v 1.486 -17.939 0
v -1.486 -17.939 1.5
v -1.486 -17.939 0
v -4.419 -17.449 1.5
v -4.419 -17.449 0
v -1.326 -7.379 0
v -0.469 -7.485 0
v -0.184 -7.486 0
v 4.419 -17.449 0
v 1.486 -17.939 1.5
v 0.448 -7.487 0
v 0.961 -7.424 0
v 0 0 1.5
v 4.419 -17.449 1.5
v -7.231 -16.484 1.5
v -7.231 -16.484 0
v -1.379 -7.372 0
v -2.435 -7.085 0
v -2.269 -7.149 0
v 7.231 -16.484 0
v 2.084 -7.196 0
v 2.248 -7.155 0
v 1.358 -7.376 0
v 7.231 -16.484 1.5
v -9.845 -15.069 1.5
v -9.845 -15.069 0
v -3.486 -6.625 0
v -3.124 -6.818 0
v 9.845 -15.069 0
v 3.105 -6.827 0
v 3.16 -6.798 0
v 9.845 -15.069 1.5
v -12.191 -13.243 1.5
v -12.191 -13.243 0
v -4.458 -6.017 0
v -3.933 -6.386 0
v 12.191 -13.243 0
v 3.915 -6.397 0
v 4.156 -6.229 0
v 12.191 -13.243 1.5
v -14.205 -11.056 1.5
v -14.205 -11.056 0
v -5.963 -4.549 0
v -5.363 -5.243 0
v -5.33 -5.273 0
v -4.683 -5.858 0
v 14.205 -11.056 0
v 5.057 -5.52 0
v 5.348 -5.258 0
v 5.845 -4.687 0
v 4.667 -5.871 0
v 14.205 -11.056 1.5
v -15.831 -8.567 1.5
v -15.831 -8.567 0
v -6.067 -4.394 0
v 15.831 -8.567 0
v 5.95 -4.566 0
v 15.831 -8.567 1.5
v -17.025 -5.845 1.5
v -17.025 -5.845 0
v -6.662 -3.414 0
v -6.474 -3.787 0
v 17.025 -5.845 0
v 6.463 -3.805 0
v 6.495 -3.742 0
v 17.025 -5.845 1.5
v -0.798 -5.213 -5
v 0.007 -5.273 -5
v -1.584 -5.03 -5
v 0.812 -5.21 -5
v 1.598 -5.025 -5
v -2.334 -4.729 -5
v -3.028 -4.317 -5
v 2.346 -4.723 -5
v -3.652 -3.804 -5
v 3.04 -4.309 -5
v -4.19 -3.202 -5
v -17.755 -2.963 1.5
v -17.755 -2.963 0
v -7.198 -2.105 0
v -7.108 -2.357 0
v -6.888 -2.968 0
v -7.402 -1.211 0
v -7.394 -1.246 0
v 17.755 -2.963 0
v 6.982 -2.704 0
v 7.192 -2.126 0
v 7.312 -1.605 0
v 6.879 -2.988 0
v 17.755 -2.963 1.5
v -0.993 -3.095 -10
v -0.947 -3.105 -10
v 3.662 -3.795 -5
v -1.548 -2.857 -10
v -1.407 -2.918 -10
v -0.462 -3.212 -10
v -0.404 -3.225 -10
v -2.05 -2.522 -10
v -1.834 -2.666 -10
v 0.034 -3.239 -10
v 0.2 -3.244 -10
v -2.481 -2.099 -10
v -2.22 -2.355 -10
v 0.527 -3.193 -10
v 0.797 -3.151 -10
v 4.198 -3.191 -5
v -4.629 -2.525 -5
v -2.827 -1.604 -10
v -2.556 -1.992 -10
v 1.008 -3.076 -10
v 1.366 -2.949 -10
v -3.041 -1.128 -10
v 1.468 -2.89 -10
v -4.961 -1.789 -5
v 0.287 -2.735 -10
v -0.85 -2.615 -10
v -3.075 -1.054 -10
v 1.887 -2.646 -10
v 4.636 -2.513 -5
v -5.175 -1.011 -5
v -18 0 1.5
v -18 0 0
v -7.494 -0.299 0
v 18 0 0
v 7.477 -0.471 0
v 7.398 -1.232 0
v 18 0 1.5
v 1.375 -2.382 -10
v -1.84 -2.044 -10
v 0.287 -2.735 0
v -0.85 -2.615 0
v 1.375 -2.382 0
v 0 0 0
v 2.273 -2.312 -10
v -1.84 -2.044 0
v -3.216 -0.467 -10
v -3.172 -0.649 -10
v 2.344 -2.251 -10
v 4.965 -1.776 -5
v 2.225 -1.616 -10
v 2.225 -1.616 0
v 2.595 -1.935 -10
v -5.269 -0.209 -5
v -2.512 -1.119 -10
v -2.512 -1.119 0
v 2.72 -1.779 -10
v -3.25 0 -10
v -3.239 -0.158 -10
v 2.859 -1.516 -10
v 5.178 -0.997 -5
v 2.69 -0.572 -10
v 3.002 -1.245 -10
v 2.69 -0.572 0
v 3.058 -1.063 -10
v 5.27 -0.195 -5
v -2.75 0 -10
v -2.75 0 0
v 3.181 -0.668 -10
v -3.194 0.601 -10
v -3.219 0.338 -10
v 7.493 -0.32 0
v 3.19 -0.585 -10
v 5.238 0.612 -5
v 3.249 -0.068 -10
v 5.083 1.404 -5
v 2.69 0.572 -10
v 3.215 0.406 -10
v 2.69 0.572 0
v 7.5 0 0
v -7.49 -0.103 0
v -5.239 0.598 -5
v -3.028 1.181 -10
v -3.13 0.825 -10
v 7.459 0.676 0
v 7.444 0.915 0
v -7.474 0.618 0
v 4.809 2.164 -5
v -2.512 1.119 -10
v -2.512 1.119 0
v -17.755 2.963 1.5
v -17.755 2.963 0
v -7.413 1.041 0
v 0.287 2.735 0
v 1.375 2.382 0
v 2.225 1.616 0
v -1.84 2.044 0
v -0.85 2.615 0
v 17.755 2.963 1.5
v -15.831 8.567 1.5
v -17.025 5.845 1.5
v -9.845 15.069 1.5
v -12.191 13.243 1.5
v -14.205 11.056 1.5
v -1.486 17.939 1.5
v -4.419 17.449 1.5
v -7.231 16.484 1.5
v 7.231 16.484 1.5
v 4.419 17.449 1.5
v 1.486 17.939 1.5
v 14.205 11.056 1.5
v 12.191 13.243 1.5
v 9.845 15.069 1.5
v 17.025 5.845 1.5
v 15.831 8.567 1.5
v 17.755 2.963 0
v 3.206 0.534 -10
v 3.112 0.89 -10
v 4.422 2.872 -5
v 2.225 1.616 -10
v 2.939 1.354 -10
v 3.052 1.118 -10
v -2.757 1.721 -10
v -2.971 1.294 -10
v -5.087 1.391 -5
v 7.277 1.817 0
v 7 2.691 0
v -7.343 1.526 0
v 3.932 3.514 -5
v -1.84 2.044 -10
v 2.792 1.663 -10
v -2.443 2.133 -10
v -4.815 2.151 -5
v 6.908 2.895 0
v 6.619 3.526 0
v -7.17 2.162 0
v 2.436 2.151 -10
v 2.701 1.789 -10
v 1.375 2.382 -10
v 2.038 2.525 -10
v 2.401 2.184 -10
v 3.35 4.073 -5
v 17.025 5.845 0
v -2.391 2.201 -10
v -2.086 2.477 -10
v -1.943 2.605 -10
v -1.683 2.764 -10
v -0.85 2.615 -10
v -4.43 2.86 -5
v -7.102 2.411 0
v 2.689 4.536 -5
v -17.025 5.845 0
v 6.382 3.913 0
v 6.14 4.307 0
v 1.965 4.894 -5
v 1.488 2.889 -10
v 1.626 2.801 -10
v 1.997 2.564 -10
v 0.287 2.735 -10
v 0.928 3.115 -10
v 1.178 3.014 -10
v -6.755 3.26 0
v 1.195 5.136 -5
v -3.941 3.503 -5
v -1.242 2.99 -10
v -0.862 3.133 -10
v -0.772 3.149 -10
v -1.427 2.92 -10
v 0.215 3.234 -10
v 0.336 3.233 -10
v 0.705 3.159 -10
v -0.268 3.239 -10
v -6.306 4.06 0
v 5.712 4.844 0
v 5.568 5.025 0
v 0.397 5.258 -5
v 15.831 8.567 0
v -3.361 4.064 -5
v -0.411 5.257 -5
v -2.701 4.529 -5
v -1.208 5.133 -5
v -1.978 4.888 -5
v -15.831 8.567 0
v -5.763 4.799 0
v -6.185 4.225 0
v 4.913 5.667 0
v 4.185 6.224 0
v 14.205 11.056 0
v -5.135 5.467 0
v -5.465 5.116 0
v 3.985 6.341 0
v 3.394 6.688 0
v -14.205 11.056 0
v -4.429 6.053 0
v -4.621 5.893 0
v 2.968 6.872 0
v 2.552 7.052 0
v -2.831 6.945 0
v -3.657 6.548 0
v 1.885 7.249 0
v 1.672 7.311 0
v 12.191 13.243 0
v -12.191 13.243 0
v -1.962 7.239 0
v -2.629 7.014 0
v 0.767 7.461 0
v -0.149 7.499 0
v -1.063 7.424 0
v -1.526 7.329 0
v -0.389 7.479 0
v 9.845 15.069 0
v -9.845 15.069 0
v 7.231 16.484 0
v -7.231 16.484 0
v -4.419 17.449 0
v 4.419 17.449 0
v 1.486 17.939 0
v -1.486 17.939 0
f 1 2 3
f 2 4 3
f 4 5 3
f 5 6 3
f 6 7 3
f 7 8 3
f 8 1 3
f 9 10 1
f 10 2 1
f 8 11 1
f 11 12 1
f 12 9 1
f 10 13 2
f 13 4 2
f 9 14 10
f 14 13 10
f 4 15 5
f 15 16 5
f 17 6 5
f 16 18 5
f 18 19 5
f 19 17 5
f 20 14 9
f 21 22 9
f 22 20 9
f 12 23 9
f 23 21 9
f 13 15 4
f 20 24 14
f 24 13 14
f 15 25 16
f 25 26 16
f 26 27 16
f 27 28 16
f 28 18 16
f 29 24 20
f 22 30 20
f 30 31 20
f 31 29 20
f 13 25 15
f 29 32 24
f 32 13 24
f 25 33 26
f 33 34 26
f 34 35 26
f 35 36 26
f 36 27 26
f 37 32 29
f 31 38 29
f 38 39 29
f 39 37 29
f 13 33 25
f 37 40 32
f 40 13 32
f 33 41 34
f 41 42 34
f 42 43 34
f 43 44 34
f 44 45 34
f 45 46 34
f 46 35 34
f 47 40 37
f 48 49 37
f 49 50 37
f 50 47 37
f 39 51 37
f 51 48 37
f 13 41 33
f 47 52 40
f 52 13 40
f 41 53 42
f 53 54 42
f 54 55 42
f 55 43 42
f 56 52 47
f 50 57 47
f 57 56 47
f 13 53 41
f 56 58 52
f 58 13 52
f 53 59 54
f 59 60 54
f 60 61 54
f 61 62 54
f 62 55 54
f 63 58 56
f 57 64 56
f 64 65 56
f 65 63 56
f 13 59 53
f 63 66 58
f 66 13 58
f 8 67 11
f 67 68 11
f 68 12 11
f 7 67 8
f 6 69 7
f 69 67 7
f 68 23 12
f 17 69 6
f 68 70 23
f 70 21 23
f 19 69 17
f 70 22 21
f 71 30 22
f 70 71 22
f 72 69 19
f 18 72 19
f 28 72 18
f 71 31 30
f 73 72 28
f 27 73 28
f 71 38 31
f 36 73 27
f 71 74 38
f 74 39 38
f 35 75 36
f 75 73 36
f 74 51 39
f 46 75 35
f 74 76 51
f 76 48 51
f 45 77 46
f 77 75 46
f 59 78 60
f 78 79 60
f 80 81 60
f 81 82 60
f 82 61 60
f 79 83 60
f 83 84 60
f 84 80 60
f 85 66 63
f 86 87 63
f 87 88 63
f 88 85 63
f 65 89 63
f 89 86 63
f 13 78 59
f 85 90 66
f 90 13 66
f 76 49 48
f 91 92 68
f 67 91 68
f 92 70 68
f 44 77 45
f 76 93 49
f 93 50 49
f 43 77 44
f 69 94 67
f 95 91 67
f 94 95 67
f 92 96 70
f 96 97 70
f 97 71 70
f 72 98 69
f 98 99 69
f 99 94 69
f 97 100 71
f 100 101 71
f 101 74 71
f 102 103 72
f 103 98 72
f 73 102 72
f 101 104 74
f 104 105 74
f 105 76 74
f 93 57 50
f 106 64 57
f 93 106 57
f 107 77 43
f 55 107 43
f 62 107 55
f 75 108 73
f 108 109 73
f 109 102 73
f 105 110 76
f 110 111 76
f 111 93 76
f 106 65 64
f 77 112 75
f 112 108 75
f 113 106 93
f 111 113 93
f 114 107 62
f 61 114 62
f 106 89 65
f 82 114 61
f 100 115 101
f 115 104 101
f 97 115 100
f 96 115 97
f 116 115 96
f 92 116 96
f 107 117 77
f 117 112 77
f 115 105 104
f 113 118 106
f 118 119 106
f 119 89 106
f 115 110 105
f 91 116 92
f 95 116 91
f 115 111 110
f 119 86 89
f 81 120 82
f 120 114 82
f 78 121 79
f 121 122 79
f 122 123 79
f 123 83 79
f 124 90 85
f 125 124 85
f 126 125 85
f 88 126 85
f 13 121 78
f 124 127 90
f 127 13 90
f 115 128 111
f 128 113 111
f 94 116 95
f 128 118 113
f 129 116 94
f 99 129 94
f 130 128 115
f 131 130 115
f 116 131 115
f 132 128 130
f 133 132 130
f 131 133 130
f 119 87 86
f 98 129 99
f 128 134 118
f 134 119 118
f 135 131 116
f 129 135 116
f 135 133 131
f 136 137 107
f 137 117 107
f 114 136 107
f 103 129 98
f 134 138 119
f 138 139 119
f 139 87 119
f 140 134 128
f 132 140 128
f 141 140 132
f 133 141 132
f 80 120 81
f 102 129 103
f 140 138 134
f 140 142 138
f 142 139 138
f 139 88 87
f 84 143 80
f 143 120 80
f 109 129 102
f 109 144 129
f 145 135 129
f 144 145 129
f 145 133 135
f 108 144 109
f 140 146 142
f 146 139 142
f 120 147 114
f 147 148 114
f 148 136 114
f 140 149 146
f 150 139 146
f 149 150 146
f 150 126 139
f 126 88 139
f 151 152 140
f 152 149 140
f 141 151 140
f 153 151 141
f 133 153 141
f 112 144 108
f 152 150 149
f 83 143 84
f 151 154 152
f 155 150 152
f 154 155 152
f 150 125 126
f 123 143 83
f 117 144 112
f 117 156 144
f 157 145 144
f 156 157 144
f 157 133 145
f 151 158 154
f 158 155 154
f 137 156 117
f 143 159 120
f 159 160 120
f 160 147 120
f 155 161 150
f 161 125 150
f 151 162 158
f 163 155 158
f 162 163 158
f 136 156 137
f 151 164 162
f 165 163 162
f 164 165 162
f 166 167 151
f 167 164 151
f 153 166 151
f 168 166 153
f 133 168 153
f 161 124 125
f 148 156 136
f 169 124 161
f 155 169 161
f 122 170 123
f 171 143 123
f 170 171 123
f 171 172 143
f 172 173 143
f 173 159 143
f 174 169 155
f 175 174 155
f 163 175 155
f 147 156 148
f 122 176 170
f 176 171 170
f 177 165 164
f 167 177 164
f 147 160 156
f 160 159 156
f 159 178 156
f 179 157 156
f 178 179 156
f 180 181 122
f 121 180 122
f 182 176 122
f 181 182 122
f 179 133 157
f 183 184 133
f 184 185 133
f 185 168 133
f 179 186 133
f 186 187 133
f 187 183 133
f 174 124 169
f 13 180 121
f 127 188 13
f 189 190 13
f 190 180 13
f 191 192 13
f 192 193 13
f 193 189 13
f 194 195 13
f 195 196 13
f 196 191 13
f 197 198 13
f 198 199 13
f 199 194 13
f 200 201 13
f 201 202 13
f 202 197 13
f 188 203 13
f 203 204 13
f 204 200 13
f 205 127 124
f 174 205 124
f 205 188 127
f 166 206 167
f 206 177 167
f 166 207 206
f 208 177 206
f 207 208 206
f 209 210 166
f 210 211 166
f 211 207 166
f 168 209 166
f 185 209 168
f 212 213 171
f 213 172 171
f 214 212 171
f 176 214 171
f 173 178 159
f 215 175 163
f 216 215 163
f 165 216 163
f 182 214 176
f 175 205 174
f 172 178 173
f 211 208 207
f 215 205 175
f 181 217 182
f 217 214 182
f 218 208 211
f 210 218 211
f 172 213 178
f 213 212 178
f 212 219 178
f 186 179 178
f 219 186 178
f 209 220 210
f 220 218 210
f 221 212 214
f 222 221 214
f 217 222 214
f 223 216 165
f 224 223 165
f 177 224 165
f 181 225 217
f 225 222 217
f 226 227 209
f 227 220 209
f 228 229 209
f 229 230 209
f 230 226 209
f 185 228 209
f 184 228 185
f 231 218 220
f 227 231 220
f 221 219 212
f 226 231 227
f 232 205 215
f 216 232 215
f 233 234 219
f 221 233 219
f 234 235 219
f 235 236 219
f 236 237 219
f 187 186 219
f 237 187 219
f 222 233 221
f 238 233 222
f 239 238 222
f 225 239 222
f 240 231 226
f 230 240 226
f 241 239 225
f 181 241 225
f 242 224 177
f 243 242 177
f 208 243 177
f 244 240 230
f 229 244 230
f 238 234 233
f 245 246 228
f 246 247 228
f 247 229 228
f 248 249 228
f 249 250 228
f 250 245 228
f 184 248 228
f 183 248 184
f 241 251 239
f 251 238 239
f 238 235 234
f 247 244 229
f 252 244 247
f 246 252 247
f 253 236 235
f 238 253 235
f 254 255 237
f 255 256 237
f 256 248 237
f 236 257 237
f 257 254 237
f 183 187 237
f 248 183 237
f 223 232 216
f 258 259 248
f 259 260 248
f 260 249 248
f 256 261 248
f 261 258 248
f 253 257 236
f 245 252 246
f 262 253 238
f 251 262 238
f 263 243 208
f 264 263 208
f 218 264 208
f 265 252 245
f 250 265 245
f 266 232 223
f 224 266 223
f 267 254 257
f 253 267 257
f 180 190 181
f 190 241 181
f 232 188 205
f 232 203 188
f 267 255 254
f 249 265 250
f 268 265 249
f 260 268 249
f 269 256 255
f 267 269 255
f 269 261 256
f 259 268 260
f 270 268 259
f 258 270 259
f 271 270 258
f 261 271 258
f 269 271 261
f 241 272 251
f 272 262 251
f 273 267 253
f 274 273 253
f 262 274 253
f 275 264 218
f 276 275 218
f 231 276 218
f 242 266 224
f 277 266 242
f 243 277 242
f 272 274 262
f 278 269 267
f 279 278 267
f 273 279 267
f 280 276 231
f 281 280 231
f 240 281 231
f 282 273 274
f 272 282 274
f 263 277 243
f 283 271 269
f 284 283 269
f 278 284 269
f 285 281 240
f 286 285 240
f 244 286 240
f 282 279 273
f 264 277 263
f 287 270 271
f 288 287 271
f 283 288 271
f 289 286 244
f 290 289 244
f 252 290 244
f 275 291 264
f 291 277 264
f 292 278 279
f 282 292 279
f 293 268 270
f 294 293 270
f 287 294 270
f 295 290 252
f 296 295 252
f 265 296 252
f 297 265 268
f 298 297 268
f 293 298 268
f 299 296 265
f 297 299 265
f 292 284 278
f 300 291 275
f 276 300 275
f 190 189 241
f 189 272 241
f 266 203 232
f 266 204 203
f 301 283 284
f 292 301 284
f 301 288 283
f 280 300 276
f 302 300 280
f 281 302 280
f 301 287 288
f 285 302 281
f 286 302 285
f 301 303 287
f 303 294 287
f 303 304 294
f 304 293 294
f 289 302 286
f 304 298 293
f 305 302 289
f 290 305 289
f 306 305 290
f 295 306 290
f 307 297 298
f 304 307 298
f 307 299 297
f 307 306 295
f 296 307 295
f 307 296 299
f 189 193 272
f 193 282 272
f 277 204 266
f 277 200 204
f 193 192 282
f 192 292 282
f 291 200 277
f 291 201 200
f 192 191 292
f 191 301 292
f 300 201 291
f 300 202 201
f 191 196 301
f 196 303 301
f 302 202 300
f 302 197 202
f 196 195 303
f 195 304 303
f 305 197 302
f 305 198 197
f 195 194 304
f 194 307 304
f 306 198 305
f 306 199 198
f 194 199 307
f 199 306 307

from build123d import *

# Parameters (mm, degrees)
SKETCH1_R           = 18
SKETCH1_R_2         = 7.5
BOSS_EXTRUDE1_DEPTH = 1.5
SKETCH2_3_R         = 2.75
CUT_EXTRUDE1_DEPTH  = 10


with BuildPart() as part:
    # Sketch1 → Boss-Extrude1 (new body)
    # profile 1 of 2: a face of its own
    with BuildSketch(Plane.XY):
        Circle(SKETCH1_R)
        Circle(SKETCH1_R_2, mode=Mode.SUBTRACT)
    # profile 2 of 2: a face of its own
    with BuildSketch(Plane.XY):
        Circle(SKETCH1_R_2)
    extrude(amount=BOSS_EXTRUDE1_DEPTH)

    # Loft1: read off the stored shape, not the designer's step
    # Loft1: loft between two sections, ruled curve by curve
    loft1_from = [
        Edge.make_bspline([(7.325491543, -1.608469353, 0), (4.108552836, -16.259452438, 0), (-10.542430249, -13.042513732, 0), (-7.325491543, 1.608469353, 0), (-4.108552836, 16.259452438, 0), (10.542430249, 13.042513732, 0), (7.325491543, -1.608469353, 0)], [0, 0, 0, 0, 0.5, 0.5, 0.5, 1, 1, 1, 1], 3, [1, 0.333333333, 0.333333333, 1, 0.333333333, 0.333333333, 1]),
    ]
    loft1_to = [
        Edge.make_bspline([(2.605092701, -1.943191195, -10), (-1.281289689, -7.153376597, -10), (-6.491475091, -3.266994207, -10), (-2.605092701, 1.943191195, -10), (1.281289689, 7.153376597, -10), (6.491475091, 3.266994207, -10), (2.605092701, -1.943191195, -10)], [0, 0, 0, 0, 0.5, 0.5, 0.5, 1, 1, 1, 1], 3, [1, 0.333333333, 0.333333333, 1, 0.333333333, 0.333333333, 1]),
    ]
    loft1 = Solid(Shell([*[Face.make_surface_from_curves(loft1_from[k], loft1_to[k]) for k in range(1)], Face(Wire(loft1_from)), Face(Wire(loft1_to))]))
    add(loft1)

    # Sketch2<3> → Cut-Extrude1 (cut)
    with BuildSketch(Plane(origin=(0, 0, -10), x_dir=(-1, 0, 0), z_dir=(0, 0, -1))):
        Circle(SKETCH2_3_R)
    extrude(amount=-CUT_EXTRUDE1_DEPTH, mode=Mode.SUBTRACT)


solid = part.part
